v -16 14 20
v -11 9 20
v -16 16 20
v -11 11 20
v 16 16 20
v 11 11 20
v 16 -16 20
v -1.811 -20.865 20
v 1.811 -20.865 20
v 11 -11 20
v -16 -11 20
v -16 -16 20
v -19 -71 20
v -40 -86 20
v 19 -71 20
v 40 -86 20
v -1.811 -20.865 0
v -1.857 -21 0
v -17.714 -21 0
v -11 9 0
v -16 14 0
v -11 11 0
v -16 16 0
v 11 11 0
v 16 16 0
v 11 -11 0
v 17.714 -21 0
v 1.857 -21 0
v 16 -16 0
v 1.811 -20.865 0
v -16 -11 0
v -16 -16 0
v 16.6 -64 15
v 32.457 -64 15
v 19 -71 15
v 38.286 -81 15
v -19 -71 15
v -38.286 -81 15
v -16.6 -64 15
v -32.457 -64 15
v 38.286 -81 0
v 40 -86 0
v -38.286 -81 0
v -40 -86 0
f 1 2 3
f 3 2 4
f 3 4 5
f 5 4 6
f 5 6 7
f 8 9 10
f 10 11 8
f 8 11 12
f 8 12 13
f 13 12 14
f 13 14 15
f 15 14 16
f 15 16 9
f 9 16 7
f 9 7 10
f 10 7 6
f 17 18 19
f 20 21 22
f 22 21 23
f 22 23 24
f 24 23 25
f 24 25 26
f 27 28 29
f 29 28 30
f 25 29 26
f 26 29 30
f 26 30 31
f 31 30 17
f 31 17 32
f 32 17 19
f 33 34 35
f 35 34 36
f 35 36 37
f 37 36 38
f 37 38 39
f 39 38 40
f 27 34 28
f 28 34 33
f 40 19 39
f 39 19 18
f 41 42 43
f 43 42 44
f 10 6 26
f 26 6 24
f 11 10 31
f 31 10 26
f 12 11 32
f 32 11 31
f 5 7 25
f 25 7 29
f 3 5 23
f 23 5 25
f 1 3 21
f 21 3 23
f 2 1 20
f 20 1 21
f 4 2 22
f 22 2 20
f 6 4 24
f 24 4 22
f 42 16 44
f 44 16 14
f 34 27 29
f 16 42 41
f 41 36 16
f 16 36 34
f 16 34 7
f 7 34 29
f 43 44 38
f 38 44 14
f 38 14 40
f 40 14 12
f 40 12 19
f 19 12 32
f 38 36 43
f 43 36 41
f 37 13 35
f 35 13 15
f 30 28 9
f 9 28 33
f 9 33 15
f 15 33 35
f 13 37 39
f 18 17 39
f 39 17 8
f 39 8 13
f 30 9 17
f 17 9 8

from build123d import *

# Parameters (mm, degrees)
BOSS_EXTRUDE1_DEPTH     = 20
CUT_EXTRUDE1_DEPTH      = 97.932966679
CUT_EXTRUDE1_DEPTH_BACK = 97.932966679
CUT_EXTRUDE3_DEPTH      = 97.932966679


with BuildPart() as part:
    # Sketch2 → Boss-Extrude1 (new body)
    with BuildSketch(Plane.XY):
        Polygon((16, 16), (16, -16), (-16, -16), (-16, -11), (-11, -11), (11, -11), (11, 11), (-11, 11), (-11, 9), (-16, 14), (-16, 16), align=None)
    extrude(amount=BOSS_EXTRUDE1_DEPTH)

    # Sketch3 → Loft1 section 0
    with BuildSketch(Plane.XZ.offset(16)):
        with BuildLine():
            Line((-16, 0), (16, 0))
            Line((16, 0), (16, 20))
            Line((16, 20), (-16, 20))
            Line((-16, 20), (-16, 0))
        make_face()
    # Sketch4 → Loft1 section 1
    with BuildSketch(Plane(origin=(0, -86, 0), x_dir=(-1, 0, 0), z_dir=(0, -1, 0))):
        with BuildLine():
            Line((40, 0), (-40, 0))
            Line((-40, 0), (-40, -20))
            Line((-40, -20), (40, -20))
            Line((40, -20), (40, 0))
        make_face()
    loft()

    # Sketch5 → Cut-Extrude1 (cut, two sides: drawn at the far end of the back side and taken through both)
    with BuildSketch(Plane(origin=(0, 0, 0), x_dir=(0, 0, -1), z_dir=(1, 0, 0)).offset(-CUT_EXTRUDE1_DEPTH_BACK)):
        Polygon((0, -81), (-15, -81), (-15, -64), (0, -21), align=None)
    extrude(amount=CUT_EXTRUDE1_DEPTH + CUT_EXTRUDE1_DEPTH_BACK, mode=Mode.SUBTRACT)

    # Sketch6 → Cut-Extrude3 (cut, through all)
    with BuildSketch(Plane.XY):
        Polygon((-1.810810811, -20.864864865), (1.810810811, -20.864864865), (19, -71), (-19, -71), align=None)
    extrude(amount=CUT_EXTRUDE3_DEPTH, mode=Mode.SUBTRACT)


solid = part.part
